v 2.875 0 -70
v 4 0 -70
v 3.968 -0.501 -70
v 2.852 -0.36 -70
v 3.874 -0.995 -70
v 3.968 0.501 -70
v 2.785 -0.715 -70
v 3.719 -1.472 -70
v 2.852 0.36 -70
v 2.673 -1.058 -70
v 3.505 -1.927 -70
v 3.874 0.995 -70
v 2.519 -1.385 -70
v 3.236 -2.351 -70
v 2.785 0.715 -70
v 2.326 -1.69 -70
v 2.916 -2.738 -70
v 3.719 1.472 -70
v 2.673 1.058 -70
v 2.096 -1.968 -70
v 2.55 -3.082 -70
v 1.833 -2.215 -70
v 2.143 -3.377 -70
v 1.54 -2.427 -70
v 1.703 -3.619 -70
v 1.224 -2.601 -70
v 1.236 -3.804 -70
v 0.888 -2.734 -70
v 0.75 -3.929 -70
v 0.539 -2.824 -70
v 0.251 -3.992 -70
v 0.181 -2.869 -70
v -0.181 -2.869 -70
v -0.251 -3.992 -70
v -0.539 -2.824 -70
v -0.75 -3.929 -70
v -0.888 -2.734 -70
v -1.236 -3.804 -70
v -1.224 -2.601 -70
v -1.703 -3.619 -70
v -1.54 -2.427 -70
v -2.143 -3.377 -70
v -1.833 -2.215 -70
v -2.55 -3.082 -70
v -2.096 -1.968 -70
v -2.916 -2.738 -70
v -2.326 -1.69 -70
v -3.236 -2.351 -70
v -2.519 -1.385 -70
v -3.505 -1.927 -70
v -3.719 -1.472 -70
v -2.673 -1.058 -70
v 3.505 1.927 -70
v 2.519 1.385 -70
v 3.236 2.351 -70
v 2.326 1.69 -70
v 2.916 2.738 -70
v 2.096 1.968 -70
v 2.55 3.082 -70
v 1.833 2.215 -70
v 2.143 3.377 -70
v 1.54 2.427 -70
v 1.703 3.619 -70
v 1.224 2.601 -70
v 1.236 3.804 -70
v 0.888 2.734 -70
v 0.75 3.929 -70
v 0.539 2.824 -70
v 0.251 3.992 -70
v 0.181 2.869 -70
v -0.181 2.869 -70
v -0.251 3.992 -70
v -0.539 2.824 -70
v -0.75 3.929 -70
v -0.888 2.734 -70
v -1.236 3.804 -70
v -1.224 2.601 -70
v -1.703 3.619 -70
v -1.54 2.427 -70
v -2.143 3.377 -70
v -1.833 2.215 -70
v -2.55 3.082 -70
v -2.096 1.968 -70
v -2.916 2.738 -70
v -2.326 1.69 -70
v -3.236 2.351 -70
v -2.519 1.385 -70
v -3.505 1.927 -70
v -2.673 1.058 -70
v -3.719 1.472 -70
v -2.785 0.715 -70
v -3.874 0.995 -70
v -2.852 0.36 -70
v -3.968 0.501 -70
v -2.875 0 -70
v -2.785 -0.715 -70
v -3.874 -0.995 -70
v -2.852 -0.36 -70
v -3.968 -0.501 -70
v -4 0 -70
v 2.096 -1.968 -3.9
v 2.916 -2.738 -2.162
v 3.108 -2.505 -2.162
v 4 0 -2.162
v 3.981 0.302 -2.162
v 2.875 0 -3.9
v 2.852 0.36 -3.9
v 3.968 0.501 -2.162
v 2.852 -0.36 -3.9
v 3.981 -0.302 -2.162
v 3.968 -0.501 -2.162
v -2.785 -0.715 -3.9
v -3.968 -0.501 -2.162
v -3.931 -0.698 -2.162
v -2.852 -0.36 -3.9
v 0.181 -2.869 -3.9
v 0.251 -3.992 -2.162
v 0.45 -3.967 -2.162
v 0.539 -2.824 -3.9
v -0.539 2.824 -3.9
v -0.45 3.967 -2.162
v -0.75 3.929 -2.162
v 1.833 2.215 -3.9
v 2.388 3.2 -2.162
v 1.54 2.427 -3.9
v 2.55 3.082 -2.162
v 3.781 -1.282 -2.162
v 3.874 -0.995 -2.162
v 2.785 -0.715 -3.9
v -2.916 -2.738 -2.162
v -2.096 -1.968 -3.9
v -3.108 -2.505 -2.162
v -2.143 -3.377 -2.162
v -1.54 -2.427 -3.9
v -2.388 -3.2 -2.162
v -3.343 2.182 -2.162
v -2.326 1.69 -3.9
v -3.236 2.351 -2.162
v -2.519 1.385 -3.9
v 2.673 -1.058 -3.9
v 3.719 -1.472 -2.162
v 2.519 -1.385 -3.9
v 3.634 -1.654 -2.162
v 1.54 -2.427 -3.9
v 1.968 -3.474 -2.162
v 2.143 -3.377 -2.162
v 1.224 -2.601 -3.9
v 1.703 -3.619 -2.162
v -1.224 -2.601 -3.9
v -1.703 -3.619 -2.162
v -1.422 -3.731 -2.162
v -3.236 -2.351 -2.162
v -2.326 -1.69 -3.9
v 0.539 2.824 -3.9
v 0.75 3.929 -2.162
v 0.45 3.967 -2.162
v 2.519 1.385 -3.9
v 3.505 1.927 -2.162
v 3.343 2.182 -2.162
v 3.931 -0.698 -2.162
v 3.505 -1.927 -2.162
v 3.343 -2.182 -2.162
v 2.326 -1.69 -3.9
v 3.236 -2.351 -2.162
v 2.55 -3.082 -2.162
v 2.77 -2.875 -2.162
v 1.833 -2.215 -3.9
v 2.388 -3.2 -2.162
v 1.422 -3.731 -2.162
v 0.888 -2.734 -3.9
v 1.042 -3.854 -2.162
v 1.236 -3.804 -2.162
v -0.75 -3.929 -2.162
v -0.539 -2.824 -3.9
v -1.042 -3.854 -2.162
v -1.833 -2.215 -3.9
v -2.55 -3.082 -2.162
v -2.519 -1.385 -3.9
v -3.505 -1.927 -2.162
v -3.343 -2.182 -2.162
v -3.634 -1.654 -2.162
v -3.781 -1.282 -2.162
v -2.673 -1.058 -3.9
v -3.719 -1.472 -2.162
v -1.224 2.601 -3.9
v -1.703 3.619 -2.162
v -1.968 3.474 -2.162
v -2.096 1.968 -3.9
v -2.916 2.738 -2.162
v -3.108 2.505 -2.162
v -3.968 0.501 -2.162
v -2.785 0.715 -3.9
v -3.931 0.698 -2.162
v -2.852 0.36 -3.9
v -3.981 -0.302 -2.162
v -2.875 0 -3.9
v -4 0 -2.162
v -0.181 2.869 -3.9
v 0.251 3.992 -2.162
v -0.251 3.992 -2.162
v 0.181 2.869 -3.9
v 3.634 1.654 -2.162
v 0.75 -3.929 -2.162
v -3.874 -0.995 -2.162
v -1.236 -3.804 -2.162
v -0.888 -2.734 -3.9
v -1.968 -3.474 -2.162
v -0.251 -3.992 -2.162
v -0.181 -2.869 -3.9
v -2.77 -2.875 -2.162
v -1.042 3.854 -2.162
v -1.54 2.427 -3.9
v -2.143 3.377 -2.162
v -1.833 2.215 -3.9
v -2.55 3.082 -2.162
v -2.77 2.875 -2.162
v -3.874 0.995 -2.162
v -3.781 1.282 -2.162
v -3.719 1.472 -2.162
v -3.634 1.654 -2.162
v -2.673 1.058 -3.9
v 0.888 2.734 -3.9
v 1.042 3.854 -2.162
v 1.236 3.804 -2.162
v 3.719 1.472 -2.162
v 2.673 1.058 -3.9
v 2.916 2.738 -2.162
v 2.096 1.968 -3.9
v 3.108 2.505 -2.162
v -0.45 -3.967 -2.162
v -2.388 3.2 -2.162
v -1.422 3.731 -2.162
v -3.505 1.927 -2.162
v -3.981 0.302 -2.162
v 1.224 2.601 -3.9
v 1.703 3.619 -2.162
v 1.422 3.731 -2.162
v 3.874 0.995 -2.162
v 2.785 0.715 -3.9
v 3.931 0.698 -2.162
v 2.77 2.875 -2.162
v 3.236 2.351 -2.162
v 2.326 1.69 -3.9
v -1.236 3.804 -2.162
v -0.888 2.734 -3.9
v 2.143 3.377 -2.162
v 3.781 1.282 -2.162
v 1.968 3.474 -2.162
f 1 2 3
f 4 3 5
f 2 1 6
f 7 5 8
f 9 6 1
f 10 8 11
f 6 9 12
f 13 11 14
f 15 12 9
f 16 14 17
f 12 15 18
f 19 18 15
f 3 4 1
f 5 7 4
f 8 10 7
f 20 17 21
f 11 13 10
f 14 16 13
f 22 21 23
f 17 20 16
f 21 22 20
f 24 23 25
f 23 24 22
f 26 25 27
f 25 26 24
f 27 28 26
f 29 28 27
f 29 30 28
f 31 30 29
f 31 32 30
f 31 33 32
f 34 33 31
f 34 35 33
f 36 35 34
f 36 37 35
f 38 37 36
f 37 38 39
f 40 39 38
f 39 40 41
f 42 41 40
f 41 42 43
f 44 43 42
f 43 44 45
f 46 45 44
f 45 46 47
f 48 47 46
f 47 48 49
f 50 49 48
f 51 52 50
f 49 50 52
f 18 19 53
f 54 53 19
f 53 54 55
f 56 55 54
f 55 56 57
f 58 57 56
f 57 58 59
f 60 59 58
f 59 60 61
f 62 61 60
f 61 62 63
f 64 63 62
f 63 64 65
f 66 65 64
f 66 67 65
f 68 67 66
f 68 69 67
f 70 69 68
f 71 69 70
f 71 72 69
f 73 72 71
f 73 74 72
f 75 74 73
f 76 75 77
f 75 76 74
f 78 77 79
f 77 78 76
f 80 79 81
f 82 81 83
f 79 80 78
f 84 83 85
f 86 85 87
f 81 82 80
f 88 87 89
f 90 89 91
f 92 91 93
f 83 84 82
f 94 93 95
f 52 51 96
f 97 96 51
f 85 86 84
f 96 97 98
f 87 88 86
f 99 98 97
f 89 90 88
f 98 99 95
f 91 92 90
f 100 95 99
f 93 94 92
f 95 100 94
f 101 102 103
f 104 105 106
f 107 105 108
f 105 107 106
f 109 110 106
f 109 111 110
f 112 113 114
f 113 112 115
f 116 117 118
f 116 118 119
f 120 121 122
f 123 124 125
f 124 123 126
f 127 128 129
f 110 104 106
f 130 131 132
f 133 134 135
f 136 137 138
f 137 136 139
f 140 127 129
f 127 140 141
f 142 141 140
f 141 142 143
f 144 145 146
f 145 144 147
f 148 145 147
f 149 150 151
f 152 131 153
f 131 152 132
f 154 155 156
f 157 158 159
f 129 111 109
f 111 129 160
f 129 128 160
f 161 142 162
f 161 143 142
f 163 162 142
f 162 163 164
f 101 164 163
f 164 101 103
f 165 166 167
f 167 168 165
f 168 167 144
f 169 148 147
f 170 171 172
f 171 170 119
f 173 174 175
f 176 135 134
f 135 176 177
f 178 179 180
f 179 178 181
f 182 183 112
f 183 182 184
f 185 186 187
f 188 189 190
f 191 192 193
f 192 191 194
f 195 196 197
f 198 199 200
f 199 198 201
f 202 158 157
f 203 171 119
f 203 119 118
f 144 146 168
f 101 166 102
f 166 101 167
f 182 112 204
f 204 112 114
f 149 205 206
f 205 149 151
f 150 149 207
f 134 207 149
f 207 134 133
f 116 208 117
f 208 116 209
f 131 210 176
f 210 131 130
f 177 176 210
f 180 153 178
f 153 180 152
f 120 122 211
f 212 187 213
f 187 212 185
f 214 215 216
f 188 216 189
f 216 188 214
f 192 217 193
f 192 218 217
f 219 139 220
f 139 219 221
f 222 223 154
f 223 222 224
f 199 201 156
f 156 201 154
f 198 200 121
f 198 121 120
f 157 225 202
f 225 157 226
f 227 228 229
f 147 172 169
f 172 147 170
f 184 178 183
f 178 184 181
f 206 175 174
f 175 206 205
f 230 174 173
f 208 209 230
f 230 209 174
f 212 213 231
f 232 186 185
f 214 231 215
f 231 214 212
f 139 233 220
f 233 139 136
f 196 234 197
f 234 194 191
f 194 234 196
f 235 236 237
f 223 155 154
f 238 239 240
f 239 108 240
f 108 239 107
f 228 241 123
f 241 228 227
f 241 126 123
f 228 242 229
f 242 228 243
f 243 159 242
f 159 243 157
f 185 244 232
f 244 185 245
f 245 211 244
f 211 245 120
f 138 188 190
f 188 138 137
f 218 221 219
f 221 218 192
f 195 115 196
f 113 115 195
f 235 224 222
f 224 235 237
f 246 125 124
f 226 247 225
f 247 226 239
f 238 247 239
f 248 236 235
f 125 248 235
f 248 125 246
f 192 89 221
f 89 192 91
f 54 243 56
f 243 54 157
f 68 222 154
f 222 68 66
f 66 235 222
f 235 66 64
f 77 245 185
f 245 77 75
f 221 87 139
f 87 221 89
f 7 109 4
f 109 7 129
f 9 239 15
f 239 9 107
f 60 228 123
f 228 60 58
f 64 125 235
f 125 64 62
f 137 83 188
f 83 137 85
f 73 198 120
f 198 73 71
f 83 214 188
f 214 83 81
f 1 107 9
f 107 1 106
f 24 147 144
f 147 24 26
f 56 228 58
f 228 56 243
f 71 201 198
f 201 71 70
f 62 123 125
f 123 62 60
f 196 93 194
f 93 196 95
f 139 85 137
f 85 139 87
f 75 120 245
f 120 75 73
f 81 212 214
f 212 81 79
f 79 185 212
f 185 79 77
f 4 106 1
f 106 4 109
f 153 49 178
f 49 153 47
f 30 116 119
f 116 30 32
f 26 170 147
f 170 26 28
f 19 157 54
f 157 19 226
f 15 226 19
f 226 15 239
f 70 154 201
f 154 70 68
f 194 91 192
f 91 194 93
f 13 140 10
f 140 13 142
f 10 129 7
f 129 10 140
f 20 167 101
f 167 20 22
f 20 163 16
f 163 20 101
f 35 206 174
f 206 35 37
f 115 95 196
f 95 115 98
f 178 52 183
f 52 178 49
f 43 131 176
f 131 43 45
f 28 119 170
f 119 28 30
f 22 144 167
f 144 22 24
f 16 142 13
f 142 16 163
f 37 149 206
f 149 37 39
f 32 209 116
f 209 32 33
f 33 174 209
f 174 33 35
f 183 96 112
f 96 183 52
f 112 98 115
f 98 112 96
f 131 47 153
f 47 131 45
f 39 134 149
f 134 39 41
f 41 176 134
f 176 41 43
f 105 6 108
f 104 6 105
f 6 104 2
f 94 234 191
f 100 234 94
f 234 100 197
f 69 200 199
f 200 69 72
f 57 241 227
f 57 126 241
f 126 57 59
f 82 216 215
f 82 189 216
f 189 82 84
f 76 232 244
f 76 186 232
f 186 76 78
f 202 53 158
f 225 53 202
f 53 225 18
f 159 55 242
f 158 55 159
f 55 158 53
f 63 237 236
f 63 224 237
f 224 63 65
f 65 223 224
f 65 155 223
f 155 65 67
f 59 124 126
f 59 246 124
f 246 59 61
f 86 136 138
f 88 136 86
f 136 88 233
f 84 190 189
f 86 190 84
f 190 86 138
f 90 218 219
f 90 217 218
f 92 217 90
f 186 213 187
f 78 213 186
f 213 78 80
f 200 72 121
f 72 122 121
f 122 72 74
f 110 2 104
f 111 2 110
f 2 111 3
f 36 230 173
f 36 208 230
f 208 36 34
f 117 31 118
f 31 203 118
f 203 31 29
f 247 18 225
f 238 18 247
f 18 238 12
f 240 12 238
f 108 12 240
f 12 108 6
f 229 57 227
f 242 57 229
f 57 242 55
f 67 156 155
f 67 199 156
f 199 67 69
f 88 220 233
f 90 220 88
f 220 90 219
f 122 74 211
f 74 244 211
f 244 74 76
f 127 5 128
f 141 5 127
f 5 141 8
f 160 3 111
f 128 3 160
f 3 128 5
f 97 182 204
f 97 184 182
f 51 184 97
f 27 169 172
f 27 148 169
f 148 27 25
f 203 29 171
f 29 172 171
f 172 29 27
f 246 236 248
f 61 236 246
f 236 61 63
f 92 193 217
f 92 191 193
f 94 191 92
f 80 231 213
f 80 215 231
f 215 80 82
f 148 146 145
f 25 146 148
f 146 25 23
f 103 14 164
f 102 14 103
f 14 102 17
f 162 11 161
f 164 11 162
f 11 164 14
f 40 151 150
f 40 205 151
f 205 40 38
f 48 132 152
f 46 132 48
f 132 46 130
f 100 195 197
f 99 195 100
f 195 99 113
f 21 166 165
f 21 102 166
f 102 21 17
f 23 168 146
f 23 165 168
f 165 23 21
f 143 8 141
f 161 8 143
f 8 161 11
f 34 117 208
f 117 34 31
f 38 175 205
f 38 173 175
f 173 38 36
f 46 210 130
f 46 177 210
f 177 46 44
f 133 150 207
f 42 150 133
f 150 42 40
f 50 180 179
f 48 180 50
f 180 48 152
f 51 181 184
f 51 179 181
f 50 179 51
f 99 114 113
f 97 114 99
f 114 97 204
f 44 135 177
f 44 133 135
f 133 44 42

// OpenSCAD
$fn = 50;


difference() {
	union() {
		translate(v = [0, 0, -70.0000000000]) {
			cylinder(h = 70, r = 4.0000000000);
		}
		cylinder(h = 0, r = 7.0000000000);
	}
	union() {
		translate(v = [0, 0, 0]) {
			rotate(a = [0, 0, 0]) {
				difference() {
					union() {
						#translate(v = [0, 0, -70.0000000000]) {
							cylinder(h = 70, r = 2.6000000000);
						}
						#translate(v = [0, 0, -3.9000000000]) {
							cylinder(h = 3.9000000000, r = 4.0000000000, r1 = 2.8750000000, r2 = 5.4000000000);
						}
						#translate(v = [0, 0, -70.0000000000]) {
							cylinder(h = 70, r = 2.8750000000);
						}
						#translate(v = [0, 0, -70.0000000000]) {
							cylinder(h = 70, r = 2.6000000000);
						}
					}
					union();
				}
			}
		}
	}
}
